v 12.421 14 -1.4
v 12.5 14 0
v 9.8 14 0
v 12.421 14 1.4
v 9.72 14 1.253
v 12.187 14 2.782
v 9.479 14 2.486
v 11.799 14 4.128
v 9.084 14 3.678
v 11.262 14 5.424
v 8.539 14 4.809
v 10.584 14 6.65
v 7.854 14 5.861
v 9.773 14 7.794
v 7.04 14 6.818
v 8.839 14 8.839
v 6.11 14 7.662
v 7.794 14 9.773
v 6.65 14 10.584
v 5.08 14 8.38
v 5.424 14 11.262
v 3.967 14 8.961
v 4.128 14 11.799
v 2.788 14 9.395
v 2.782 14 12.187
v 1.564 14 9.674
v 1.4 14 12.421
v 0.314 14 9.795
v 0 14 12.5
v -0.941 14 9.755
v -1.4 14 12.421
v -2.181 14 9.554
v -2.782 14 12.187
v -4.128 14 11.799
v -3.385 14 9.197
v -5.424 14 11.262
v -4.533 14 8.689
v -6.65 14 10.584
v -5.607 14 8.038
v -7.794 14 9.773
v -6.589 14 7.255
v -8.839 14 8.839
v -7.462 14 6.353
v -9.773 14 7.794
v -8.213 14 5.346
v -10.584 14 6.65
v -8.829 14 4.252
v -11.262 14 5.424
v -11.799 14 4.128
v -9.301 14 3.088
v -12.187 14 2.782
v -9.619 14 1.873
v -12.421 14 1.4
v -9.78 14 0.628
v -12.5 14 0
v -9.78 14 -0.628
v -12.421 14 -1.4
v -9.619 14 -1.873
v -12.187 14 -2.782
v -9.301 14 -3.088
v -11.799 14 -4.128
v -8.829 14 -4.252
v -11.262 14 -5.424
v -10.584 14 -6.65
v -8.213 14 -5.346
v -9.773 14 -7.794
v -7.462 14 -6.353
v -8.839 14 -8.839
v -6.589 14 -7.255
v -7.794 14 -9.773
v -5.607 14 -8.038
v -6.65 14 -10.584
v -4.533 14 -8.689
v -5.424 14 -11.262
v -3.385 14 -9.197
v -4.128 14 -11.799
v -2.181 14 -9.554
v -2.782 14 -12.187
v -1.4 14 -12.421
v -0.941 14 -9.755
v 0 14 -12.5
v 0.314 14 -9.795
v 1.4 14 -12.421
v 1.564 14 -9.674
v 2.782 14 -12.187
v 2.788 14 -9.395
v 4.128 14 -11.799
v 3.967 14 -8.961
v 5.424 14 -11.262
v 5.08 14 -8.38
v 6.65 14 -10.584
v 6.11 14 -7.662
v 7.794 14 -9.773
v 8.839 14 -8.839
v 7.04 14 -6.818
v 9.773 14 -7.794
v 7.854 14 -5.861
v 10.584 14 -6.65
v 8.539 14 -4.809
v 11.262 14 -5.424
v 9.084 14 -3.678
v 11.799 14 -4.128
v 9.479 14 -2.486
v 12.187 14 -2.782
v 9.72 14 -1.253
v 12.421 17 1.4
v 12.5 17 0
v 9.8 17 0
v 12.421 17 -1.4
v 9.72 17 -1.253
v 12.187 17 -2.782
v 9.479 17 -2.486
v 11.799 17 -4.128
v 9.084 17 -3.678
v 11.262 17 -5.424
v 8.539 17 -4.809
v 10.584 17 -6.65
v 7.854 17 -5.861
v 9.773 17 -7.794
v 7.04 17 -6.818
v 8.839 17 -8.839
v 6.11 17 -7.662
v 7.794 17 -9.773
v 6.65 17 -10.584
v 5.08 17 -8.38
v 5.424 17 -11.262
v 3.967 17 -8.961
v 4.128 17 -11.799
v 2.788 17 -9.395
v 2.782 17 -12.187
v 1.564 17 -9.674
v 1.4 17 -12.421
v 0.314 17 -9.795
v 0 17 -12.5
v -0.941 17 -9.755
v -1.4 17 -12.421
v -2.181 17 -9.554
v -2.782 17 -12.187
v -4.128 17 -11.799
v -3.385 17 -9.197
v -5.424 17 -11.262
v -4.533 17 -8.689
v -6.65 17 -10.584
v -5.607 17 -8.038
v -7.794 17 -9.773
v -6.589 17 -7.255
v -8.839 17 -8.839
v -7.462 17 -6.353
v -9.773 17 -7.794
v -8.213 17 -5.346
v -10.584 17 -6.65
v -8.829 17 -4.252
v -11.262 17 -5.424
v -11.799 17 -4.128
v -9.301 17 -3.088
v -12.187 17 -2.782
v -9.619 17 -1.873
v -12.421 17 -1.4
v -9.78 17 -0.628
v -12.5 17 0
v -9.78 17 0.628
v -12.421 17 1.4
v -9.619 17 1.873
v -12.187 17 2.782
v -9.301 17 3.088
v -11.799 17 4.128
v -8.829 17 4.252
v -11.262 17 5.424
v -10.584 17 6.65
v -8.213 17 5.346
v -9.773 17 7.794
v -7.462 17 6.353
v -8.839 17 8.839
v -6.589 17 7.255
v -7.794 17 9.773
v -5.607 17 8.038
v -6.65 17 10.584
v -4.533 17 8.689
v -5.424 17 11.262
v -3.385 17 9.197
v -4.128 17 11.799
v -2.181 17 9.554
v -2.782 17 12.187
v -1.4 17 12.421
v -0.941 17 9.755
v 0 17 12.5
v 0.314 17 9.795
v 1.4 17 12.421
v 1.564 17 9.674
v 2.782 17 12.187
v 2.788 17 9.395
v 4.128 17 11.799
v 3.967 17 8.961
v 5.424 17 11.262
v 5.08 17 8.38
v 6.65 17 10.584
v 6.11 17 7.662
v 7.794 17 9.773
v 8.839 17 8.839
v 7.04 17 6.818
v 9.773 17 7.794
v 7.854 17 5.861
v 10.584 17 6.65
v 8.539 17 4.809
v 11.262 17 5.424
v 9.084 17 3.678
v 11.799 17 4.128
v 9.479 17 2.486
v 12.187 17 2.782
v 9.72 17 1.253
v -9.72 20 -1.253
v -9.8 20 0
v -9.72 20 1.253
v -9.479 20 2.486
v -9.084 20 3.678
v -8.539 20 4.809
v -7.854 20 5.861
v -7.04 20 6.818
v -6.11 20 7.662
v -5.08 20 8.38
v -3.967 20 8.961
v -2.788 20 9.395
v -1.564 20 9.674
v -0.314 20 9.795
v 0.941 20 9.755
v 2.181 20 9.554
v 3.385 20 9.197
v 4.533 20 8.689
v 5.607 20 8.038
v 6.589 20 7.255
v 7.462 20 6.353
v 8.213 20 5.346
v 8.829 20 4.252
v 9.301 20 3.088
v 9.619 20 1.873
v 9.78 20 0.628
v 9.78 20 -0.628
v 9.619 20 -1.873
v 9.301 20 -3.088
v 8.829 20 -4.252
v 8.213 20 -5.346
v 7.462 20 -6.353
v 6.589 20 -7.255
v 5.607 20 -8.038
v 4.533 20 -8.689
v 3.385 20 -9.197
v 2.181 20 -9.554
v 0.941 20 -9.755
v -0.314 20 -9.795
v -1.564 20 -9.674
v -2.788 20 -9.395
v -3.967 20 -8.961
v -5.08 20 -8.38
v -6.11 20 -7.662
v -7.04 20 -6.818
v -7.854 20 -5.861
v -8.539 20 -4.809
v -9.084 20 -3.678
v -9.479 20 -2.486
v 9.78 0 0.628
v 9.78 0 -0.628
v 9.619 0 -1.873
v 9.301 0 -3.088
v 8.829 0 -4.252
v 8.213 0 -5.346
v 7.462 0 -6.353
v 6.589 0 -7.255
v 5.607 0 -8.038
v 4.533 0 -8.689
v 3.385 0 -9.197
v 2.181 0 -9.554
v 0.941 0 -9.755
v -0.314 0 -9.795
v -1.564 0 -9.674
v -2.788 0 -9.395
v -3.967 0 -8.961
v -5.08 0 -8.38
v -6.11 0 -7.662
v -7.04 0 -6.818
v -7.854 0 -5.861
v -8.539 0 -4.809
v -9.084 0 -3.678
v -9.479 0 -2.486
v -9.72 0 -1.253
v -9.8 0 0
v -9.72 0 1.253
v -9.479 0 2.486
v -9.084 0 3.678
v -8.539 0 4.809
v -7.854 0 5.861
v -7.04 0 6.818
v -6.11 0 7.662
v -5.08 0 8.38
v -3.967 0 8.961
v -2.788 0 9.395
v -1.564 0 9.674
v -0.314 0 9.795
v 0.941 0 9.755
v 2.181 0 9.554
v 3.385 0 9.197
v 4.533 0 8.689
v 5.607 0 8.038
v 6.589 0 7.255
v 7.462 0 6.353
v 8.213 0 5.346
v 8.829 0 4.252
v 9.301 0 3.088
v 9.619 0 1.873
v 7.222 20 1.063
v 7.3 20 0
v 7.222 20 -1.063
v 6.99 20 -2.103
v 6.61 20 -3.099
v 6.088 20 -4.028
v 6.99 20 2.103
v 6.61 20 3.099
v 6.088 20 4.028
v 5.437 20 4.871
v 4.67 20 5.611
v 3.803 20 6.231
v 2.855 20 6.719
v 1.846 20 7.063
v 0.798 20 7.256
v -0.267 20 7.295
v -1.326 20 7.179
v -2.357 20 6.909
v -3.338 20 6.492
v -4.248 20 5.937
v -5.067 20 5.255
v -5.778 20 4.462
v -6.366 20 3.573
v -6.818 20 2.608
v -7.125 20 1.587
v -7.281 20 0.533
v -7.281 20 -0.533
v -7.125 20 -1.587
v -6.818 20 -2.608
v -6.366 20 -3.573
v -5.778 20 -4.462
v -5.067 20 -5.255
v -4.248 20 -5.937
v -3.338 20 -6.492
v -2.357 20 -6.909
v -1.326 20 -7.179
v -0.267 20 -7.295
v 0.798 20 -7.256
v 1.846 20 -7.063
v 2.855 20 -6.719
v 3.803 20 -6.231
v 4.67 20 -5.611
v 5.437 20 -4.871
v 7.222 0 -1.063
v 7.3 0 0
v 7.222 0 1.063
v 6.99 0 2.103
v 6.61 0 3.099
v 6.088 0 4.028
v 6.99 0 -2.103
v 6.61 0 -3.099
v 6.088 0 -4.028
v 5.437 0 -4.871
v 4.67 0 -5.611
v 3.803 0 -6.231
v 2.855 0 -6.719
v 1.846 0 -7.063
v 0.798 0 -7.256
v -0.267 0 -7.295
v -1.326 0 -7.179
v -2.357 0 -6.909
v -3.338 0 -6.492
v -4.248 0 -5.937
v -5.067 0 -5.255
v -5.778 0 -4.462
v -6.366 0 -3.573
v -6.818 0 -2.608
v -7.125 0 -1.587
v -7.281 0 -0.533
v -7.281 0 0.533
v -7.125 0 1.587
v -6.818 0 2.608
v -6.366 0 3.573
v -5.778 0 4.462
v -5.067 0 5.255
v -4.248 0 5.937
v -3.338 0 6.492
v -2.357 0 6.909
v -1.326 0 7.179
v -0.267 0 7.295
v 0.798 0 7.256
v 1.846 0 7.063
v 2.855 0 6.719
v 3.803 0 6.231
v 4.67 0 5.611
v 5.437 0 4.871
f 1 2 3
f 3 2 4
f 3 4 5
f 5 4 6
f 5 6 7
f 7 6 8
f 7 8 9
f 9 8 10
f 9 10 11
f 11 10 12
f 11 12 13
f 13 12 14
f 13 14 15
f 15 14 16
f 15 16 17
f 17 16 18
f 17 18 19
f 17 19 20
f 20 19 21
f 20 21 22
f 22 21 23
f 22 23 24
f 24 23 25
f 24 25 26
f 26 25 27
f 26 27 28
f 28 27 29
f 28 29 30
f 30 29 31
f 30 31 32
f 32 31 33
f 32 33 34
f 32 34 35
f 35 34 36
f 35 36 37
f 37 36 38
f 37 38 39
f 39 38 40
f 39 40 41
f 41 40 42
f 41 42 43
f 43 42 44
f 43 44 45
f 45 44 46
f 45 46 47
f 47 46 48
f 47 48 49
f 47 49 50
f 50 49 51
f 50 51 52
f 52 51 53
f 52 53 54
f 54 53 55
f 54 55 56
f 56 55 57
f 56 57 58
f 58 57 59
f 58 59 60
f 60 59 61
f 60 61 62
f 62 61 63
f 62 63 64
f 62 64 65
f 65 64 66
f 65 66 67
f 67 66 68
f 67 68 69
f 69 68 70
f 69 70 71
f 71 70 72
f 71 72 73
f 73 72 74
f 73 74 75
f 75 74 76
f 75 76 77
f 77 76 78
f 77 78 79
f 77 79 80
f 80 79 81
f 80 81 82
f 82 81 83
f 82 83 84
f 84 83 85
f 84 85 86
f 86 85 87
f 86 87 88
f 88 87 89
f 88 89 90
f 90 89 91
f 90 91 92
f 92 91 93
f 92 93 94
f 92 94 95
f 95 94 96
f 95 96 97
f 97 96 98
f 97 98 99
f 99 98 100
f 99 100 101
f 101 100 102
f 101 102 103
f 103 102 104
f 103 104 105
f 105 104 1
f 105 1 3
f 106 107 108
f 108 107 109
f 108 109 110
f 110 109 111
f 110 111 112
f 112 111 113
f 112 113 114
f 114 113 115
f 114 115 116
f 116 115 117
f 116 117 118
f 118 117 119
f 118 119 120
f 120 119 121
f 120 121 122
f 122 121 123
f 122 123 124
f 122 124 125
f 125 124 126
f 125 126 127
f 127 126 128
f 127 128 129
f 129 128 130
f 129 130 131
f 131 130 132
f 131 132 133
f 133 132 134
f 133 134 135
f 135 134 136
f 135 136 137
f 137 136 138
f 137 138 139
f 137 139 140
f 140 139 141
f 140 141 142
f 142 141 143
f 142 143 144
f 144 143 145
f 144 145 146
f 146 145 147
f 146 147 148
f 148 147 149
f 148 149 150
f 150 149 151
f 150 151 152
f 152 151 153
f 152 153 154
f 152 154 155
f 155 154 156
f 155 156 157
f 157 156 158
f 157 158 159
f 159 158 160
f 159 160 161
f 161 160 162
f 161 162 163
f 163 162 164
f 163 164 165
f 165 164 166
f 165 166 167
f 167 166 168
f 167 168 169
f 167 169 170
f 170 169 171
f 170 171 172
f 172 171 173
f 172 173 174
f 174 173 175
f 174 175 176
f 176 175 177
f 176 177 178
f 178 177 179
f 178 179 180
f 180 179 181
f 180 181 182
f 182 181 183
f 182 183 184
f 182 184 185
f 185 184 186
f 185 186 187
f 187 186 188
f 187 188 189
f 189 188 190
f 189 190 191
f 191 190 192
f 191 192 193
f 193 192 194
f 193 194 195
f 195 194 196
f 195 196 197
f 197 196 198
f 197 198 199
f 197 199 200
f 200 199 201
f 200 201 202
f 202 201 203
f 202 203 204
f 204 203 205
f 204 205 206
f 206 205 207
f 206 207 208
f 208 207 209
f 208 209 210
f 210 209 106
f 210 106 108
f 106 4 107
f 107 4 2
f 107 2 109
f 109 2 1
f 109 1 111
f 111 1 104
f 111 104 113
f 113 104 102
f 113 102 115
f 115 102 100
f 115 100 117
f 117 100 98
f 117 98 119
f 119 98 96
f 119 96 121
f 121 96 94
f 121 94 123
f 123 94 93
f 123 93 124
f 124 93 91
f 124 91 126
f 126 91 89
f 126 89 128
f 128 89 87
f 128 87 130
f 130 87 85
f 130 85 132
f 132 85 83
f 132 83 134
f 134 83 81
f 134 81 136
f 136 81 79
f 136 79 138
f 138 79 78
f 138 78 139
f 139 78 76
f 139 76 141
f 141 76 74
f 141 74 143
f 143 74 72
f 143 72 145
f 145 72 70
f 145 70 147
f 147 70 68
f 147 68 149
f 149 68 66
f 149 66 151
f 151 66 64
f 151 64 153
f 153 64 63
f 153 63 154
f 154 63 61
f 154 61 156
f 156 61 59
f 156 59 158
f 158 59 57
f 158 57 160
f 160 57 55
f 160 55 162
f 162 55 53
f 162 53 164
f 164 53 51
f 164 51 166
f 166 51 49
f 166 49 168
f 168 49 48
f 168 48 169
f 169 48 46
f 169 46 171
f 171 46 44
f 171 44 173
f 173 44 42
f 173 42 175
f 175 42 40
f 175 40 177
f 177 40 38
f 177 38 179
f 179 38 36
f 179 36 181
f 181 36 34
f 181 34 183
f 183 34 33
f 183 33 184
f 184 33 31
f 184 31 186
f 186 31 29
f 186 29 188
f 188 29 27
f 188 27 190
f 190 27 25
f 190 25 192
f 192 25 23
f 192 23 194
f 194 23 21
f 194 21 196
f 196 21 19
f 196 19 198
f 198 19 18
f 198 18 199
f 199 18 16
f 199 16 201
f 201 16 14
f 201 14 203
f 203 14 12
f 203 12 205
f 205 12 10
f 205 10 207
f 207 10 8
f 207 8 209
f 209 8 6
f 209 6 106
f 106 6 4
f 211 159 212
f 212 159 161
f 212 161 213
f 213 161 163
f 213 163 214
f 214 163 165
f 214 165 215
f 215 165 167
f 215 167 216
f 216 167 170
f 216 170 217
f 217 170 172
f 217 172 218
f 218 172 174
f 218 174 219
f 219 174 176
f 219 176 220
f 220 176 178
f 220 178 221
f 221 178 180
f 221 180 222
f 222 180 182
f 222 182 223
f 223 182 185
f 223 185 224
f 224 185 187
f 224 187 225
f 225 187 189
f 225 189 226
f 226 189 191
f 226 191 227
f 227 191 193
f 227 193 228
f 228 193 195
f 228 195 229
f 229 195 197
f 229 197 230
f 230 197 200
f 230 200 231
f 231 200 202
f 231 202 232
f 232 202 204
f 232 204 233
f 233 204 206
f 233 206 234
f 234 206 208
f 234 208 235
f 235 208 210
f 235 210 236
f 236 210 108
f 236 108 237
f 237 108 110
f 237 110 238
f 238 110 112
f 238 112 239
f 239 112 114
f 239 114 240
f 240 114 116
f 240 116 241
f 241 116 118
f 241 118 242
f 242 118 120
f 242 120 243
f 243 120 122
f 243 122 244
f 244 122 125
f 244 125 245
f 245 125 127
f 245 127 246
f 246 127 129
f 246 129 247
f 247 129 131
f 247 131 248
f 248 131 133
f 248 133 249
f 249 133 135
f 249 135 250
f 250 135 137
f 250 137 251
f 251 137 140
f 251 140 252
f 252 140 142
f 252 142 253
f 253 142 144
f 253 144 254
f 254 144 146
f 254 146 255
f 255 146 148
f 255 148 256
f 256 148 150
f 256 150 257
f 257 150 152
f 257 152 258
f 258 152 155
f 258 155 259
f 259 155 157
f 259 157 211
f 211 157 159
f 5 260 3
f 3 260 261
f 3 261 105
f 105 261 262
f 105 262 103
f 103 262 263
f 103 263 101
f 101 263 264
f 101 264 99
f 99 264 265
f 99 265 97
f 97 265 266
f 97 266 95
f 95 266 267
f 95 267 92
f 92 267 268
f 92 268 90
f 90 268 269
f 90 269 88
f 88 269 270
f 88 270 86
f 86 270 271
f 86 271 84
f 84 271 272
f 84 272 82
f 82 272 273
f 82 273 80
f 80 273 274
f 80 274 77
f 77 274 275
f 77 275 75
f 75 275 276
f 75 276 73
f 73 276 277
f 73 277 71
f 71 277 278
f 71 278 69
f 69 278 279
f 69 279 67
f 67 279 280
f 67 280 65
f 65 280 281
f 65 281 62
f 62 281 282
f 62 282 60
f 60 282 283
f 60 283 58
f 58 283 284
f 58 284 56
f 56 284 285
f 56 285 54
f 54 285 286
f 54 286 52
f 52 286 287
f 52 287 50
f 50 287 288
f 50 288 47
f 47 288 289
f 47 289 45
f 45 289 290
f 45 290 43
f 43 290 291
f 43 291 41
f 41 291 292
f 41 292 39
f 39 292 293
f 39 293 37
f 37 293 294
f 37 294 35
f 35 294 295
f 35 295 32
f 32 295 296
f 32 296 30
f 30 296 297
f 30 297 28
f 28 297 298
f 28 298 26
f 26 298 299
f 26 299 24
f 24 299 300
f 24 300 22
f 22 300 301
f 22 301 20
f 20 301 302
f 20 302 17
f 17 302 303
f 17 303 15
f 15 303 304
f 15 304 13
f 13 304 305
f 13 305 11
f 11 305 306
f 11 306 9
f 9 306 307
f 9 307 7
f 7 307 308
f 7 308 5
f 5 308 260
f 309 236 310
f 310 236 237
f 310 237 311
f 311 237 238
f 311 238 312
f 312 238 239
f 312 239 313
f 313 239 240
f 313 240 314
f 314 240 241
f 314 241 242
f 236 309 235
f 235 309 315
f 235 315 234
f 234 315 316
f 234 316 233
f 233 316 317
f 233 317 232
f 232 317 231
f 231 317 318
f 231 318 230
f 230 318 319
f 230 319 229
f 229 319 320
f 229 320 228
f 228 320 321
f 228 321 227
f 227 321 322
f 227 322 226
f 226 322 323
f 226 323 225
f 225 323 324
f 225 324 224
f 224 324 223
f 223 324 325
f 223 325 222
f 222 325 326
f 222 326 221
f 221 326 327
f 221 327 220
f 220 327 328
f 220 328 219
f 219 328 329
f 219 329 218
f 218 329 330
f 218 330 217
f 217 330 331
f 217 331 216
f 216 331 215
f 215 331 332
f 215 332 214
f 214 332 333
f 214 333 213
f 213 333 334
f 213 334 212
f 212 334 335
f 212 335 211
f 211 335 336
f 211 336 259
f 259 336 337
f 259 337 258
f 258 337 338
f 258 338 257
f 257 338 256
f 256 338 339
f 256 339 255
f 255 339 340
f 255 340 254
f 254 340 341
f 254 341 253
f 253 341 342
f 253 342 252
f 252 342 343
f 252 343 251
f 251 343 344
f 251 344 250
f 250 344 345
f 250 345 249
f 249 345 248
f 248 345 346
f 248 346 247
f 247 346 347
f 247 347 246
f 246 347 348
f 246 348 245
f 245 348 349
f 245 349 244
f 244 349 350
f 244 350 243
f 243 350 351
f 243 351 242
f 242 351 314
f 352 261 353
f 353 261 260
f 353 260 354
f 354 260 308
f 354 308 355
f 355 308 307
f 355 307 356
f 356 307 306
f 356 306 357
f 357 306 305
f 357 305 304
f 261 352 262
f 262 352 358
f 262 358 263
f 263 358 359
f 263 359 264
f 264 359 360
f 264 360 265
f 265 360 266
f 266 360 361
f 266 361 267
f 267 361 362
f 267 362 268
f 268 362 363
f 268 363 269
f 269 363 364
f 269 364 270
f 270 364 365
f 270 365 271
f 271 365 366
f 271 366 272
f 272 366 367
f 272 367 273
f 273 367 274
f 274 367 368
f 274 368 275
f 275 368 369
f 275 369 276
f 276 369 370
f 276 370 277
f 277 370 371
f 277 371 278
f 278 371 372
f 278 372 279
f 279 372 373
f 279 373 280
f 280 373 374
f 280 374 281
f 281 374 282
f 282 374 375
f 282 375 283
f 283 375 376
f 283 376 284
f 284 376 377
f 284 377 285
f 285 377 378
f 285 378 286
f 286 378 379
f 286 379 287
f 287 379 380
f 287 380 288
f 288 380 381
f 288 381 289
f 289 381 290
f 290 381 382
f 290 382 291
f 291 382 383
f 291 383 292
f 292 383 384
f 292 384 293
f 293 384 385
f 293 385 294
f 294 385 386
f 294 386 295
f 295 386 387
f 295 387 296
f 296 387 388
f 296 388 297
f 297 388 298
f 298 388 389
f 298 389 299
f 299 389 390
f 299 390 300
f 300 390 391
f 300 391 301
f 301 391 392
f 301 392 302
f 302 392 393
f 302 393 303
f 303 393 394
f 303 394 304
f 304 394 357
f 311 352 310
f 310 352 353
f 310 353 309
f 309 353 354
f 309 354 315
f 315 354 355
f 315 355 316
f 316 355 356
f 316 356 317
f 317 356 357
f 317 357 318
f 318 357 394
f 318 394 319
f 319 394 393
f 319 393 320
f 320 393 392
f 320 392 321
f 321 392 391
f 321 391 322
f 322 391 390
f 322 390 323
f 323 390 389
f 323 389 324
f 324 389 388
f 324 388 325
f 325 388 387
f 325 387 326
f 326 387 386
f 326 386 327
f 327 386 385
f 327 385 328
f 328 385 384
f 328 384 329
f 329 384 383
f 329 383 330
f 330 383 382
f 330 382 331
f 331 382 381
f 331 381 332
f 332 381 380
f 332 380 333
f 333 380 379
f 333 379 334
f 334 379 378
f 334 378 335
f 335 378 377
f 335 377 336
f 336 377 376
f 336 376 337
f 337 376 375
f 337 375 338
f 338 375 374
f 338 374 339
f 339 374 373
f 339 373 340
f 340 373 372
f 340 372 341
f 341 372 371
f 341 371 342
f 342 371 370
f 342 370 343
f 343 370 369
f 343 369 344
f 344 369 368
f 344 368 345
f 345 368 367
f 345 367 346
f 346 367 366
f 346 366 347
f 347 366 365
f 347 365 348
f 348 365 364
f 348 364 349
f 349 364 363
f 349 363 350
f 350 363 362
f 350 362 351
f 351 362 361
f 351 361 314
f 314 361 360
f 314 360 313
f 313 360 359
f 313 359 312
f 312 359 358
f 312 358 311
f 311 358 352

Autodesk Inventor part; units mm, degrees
ref_plane "YZ Plane" through (0, 0, 0) normal (1, 0, 0) x (0, 1, 0)
ref_plane "XZ Plane" through (0, 0, 0) normal (0, 1, 0) x (-1, 0, 0)
sketch "Sketch1" plane through (0, 0, 0) normal (0, 1, 0) x (-1, 0, 0)
  circle A0 centre (0, 0) radius 9.8
  dimension "d0" = 19.6
extrude "Extrusion1" add sketch "Sketch1" along normal blind 20
ref_plane "Work Plane1" through (0, 14, 0) normal (0, -1, 0) x (1, 0, 0)
sketch "Sketch3" plane through (0, 14, 0) normal (0, -1, 0) x (1, 0, 0)
  circle A0 centre (0, 0) radius 12.5
  dimension "d7" = 25
extrude "Extrusion3" add sketch "Sketch3" against normal blind 3
shell "Shell1" thickness 2.5 removed faces 2 at (0.3035, 20, 2.5) at (0.3035, 0, 2.5)
properties part number "Pomodoro Robot Neck"
